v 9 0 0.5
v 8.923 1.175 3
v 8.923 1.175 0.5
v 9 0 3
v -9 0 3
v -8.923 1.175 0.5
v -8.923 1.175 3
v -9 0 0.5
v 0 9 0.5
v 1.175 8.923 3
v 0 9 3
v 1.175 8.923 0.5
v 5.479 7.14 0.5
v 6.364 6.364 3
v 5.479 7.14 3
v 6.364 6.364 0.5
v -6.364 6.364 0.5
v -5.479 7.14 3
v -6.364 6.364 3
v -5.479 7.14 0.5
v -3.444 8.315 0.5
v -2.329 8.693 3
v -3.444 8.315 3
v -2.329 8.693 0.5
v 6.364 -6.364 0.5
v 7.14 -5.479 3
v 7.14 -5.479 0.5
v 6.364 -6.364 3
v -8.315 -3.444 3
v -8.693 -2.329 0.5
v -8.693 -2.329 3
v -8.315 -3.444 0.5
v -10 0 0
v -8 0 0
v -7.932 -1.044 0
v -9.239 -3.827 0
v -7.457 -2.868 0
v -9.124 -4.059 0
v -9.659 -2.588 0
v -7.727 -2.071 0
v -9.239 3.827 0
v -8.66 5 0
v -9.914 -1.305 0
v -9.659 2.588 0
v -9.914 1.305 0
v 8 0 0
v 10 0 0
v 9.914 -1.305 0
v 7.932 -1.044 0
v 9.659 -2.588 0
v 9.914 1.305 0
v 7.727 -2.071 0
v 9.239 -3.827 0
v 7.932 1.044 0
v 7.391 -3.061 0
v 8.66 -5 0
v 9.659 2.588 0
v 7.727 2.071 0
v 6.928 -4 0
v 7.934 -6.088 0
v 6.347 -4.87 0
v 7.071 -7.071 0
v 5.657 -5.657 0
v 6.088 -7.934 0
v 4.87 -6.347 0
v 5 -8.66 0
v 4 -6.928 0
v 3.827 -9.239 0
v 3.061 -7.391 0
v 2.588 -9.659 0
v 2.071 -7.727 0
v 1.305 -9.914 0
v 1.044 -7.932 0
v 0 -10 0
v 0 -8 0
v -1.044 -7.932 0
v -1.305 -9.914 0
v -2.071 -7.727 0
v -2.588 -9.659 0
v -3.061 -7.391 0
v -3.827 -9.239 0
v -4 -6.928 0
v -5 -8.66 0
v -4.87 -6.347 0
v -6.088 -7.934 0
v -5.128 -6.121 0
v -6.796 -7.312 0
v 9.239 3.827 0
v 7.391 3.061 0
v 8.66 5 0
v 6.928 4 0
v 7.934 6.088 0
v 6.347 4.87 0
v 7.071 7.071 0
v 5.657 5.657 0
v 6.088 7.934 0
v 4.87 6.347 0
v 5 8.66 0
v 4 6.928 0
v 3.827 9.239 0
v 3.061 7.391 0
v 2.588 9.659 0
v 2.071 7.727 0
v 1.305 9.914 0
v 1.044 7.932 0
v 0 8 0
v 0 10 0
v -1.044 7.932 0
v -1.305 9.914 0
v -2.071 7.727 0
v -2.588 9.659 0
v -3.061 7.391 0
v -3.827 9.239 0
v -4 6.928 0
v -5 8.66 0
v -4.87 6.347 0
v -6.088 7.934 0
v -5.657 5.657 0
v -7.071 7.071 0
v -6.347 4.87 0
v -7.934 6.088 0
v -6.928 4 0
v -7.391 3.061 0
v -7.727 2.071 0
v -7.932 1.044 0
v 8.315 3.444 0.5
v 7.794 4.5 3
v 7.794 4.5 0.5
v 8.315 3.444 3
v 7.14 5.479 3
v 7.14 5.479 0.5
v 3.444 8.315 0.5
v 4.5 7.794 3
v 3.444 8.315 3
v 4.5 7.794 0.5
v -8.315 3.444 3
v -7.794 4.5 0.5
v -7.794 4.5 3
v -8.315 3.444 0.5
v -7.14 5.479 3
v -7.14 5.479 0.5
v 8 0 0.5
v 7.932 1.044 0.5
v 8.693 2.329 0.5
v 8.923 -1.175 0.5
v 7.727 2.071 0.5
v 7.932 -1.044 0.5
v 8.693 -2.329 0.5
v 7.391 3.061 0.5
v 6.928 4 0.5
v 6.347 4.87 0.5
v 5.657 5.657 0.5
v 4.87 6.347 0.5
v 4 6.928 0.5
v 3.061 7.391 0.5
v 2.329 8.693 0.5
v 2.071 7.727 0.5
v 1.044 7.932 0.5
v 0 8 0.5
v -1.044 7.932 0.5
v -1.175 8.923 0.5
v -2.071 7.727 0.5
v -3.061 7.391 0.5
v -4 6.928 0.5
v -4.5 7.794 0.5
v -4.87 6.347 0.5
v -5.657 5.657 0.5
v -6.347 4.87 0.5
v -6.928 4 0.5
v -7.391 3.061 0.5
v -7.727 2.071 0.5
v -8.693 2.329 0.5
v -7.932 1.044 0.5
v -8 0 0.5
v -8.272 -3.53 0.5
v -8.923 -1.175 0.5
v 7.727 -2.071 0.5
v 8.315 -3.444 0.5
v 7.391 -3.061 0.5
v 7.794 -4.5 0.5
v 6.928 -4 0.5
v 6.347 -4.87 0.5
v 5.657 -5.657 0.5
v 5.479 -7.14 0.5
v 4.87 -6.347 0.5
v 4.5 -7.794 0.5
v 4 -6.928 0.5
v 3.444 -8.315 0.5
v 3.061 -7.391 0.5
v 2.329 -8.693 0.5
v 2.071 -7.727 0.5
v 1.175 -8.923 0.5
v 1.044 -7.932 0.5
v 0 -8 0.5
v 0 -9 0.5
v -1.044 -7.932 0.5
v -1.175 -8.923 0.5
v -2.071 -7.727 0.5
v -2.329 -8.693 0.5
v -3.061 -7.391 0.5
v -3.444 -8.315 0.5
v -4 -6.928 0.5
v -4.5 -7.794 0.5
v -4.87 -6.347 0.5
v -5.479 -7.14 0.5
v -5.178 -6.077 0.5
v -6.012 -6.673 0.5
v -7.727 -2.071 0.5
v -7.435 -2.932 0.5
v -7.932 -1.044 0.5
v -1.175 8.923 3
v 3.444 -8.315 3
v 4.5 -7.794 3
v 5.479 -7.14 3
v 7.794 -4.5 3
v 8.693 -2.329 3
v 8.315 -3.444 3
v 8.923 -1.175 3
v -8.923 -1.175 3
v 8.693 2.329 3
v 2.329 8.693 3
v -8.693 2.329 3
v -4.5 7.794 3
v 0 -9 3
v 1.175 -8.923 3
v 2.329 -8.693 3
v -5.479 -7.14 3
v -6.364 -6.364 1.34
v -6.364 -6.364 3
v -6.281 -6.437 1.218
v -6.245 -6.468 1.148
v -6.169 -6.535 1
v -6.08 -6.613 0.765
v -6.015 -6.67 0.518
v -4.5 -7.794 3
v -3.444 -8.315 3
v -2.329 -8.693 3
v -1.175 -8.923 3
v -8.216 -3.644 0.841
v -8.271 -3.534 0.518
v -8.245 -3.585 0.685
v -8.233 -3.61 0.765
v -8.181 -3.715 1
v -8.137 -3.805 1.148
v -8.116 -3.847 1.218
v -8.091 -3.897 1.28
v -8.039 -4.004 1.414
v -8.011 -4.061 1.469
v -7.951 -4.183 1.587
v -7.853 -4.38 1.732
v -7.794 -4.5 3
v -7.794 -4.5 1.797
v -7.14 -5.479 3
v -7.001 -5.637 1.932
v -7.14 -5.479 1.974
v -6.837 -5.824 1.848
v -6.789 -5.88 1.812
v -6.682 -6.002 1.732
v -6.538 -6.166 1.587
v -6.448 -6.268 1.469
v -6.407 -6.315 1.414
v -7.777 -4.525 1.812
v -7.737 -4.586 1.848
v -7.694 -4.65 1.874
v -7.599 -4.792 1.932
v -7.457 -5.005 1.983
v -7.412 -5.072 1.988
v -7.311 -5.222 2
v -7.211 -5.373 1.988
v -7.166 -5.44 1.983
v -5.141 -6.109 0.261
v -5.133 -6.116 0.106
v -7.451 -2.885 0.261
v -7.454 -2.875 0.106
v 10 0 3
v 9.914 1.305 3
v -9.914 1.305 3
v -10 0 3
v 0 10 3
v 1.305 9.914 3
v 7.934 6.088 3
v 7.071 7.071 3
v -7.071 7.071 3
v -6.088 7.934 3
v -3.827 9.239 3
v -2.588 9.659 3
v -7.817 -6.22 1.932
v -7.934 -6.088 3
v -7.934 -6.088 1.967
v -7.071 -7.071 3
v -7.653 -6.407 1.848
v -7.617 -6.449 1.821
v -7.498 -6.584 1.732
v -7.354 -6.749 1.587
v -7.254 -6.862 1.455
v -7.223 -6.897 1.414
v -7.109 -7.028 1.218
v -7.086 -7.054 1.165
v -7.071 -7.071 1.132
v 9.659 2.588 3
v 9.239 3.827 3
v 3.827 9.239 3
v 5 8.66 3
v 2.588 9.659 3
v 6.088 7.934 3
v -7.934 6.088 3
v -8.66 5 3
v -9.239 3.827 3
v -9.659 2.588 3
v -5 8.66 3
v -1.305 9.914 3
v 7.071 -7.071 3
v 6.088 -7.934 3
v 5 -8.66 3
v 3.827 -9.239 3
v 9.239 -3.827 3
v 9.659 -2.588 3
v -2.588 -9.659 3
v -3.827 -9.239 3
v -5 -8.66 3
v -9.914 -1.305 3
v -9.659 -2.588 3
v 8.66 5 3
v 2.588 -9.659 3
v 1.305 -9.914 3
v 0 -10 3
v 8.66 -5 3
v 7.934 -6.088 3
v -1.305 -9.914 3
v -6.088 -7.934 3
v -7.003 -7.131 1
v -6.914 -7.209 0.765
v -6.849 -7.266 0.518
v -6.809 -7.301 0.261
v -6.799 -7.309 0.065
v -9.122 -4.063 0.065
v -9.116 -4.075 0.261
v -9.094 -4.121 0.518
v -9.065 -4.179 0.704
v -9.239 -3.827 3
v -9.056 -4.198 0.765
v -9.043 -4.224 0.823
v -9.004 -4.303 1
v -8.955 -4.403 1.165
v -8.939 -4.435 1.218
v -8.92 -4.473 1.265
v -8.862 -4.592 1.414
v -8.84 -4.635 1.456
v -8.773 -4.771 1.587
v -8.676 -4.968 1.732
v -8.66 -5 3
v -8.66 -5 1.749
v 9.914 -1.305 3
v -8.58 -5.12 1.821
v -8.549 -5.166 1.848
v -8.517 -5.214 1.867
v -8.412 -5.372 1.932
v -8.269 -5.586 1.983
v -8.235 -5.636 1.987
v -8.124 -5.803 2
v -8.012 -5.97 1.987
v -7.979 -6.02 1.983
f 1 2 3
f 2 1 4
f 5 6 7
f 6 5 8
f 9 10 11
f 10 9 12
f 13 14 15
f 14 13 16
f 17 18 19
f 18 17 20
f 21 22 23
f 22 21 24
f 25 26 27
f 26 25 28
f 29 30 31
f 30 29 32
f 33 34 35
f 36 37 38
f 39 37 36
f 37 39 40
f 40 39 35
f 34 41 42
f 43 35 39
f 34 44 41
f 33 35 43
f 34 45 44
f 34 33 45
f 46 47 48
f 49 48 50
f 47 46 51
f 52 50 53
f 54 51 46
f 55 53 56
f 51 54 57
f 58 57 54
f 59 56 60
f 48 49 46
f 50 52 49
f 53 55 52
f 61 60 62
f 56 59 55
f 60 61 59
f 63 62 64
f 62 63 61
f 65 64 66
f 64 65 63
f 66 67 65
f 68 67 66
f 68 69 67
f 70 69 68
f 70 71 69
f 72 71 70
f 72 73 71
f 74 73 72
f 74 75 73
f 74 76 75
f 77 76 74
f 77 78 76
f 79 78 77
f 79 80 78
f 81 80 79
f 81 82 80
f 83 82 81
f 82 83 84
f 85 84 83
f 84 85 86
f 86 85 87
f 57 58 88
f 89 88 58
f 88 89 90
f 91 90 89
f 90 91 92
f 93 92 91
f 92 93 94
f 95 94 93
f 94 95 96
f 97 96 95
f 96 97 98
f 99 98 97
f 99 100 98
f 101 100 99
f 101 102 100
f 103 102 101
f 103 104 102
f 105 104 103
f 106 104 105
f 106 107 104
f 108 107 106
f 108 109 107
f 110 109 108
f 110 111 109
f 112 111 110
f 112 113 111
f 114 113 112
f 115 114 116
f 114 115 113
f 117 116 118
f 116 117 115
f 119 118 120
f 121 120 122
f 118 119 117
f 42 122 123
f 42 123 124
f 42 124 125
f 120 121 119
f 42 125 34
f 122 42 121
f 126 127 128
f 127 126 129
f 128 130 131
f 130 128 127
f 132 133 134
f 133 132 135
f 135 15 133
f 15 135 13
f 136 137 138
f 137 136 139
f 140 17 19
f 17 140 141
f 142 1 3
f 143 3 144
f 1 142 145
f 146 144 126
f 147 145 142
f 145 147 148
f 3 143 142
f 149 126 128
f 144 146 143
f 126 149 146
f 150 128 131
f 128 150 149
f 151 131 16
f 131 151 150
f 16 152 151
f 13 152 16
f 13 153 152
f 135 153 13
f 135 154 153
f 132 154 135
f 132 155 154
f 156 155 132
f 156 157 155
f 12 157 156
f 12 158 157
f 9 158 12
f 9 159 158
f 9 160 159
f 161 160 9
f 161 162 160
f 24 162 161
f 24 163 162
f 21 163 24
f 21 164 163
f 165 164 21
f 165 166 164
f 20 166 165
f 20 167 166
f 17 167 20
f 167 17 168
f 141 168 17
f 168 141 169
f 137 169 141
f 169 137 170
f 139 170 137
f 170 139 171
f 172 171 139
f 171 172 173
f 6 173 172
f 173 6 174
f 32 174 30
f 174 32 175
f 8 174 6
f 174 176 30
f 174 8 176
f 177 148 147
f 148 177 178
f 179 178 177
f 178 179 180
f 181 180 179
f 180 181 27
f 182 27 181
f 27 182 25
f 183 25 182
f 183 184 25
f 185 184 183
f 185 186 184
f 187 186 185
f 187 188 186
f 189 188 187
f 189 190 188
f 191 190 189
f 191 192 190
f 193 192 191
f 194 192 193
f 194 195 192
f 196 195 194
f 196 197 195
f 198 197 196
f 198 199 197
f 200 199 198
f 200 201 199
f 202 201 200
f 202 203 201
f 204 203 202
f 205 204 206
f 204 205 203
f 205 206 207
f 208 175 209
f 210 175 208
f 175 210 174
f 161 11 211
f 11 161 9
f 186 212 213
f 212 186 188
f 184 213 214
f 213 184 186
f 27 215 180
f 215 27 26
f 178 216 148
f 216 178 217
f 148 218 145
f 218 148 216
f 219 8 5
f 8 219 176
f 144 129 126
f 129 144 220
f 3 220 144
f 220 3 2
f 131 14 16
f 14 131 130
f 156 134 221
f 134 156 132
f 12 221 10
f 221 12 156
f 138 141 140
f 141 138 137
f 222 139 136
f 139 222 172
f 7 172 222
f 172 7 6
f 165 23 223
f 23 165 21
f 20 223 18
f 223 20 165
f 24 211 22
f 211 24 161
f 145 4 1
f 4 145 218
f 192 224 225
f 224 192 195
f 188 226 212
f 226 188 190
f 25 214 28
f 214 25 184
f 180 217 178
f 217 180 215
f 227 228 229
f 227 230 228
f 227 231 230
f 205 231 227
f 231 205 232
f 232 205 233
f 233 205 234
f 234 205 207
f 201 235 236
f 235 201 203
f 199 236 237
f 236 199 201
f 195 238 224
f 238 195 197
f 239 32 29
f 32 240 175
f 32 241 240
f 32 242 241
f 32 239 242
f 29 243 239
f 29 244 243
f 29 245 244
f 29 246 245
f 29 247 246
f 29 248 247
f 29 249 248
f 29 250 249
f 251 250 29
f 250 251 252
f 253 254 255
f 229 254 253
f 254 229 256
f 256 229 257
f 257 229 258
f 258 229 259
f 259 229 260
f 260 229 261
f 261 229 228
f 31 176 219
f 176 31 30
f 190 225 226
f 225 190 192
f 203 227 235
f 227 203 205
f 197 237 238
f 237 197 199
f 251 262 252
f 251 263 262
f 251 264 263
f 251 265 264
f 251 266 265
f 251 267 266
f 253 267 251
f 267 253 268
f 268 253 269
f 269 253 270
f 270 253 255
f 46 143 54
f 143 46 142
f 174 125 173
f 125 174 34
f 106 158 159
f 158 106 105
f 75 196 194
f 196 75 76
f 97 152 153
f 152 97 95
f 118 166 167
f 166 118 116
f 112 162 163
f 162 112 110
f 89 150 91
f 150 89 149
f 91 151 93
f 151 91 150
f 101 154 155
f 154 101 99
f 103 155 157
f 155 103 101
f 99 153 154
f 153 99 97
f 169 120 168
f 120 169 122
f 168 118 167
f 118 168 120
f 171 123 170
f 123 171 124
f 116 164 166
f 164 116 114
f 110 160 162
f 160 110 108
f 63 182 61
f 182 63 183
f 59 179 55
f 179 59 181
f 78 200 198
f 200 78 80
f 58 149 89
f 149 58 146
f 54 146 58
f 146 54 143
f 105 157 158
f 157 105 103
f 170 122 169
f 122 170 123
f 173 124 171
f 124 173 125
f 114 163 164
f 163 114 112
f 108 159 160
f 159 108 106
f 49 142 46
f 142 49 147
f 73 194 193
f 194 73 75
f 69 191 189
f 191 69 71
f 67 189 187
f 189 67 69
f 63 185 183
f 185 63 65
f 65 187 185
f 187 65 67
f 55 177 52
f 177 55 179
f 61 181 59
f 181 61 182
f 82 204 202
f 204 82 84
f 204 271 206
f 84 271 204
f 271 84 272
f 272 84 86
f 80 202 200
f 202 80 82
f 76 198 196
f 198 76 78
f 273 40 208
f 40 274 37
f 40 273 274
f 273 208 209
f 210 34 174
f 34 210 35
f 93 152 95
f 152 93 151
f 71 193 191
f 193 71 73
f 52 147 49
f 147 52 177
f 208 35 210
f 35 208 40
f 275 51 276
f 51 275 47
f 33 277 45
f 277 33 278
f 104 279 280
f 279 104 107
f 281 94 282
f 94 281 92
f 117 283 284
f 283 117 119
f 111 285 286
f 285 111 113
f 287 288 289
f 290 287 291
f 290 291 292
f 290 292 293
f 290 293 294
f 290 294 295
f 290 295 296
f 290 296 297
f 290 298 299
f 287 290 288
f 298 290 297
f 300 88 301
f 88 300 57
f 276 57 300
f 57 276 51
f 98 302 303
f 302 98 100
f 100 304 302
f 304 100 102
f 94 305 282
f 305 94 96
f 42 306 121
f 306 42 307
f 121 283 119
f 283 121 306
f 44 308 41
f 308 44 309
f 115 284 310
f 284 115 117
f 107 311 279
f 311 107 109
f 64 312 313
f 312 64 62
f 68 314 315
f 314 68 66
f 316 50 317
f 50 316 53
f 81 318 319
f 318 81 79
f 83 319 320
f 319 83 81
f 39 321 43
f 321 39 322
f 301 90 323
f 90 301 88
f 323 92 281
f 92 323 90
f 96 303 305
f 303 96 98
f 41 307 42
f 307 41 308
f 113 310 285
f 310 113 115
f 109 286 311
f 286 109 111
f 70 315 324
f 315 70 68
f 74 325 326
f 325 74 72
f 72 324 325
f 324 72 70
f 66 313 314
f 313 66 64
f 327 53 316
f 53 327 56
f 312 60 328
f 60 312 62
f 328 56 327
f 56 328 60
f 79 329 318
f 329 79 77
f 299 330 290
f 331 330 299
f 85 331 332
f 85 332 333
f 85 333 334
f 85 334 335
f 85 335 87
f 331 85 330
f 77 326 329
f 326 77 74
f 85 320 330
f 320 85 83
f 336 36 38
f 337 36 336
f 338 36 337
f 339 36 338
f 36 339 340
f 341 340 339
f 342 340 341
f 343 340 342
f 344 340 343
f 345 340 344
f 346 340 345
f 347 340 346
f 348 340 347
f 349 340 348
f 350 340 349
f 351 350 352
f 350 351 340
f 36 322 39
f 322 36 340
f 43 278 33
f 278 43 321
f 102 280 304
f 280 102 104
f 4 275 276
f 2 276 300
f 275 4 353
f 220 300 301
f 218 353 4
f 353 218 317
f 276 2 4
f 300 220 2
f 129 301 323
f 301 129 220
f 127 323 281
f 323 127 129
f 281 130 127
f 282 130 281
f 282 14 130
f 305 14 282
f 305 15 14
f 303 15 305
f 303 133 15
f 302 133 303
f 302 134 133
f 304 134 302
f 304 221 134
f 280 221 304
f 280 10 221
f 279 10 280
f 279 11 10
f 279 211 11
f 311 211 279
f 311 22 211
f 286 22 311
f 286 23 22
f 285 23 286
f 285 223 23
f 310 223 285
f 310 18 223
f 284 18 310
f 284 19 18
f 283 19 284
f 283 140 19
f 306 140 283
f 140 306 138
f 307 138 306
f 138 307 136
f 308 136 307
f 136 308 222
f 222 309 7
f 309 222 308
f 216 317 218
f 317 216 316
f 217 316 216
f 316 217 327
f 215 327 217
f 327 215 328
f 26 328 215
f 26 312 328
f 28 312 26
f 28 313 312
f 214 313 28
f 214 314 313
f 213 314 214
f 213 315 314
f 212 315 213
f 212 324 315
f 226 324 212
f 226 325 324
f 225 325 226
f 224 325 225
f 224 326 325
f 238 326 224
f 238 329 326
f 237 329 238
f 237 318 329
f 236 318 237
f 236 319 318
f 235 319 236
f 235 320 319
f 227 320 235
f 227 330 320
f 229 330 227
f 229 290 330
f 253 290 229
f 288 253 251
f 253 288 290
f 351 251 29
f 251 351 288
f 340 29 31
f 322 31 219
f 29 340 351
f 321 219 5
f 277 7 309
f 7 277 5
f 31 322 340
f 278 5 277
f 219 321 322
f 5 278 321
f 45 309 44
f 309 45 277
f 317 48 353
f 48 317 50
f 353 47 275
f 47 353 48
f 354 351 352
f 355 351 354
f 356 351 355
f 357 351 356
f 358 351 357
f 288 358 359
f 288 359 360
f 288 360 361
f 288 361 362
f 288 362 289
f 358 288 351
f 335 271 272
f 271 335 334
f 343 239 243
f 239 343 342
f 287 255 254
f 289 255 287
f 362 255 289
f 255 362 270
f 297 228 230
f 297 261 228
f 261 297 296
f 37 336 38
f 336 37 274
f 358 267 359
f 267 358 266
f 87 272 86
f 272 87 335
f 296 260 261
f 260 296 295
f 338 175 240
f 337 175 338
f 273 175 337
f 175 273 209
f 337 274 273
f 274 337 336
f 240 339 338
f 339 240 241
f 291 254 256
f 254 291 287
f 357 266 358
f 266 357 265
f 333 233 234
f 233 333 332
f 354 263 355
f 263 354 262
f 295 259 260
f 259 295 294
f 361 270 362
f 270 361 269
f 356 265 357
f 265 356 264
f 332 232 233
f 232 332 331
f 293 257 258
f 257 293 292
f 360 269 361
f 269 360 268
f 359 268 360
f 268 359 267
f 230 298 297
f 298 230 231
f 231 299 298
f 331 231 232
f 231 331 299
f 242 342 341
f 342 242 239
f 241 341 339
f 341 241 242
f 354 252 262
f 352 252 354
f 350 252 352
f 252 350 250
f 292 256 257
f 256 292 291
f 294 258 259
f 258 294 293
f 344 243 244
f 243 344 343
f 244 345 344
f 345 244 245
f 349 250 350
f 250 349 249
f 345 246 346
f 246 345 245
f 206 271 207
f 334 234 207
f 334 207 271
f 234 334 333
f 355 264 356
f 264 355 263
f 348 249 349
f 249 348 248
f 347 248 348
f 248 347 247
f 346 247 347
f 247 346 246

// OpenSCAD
// file: ../build_environments.scad
// build_environments.scad: modules to build level sections
//

module pool(diameter=10.0, wall_height=2.0, step_width=3.0, connections=[])
{
    difference() {
        union() {
        difference() {
            cylinder(h=0.5,r1=diameter+step_width,r2=diameter+step_width,$fn=48);
            translate([0,0,-0.1])
                cylinder(h=0.7,r1=diameter,r2=diameter,$fn=48);
        }
        difference() {
            cylinder(h=wall_height,r1=diameter+step_width+1.0,r2=diameter+step_width+1.0,$fn=48);
            translate([0,0,-0.1])
                cylinder(h=wall_height+0.2,r1=diameter+step_width,r2=diameter+step_width,$fn=48);
        }
        }
    
        for (c = connections)
        {
            rotate([0,90,0]) {
                angle = atan2(c[1],c[0]);
                rotate([-angle,0,0]) {
                    cylinder(h=diameter+5.0,r1=c[2],r2=c[2],$fn=48);
                }
            }
        }
    }
}

module straight(length=10.0, width=2.0, dy1=0.0, dy2=0.0, dz=0.0)
{
    dims = [0, 0, 0, 0, 0, (dz/length)];
    matrix = [
        [ 1, dims[0], dims[1], 0 ],
        [ dims[2], 1, dims[4], 0 ],
        [ dims[5], dims[3], 1, 0 ],
        [ 0, 0, 0, 1 ]
    ];
    multmatrix(matrix)
    difference() {
        translate([dy1,0,0])
        union() {
            rotate([0,90,0]) {
                difference() {
                    cylinder(h=(length-dy1-dy2),r1=width+1.0,r2=width+1.0,$fn=24);
                    translate([0,0,-0.1])
                        cylinder(h=(length-dy1-dy2+0.2),r1=width,r2=width,$fn=24);
                }
                difference() {
                    cylinder(h=1.0,r1=width+2.0,r2=width+2.0,$fn=24);
                    translate([0,0,-0.1])
                        cylinder(h=1.2,r1=width,r2=width,$fn=24);
                }
                translate([0,0,(length-dy1-dy2)-1.0]) {
                    difference() {
                        cylinder(h=1.0,r1=width+2.0,r2=width+2.0,$fn=24);
                        translate([0,0,-0.1])
                            cylinder(h=1.2,r1=width,r2=width,$fn=24);
                    }
                }
            }
        }
        translate([0,0,-(2*width+4.0)/2])
            cube([3*length,3*length,2*width+4.0],center=true);
    }
}

module curve(p0=[0,0], center=[0,0], dir=1, angle=0.0, width=2.0)
{
    radius = sqrt((p0[0]-center[0])*(p0[0]-center[0]) + (p0[1]-center[1])*(p0[1]-center[1]));
    if (dir == 0) {
        difference() {
            rotate([0,0,-90])
            difference() {
                rotate_extrude(angle = angle, convexity = 10, $fn=32)
                    translate([radius, 0, 0])
                        circle(r = width+1.0,$fn=24);
                rotate([0,0,-1.0])
                    rotate_extrude(angle = angle+2.0, convexity = 10, $fn=32)
                        translate([radius, 0, 0])
                            circle(r = width,$fn=24);
            }
            translate([0,0,-(2*width+4.0)/2])
                cube([5*radius,5*radius,2*width+4.0],center=true);
        }
    }
    else {
        difference() {
            rotate([0,0,90])
            difference() {
                rotate_extrude(angle = -angle, convexity = 10, $fn=32)
                    translate([radius, 0, 0])
                        circle(r = width+1.0,$fn=24);
                rotate([0,0,1.0])
                    rotate_extrude(angle = -angle-2.0, convexity = 10, $fn=32)
                        translate([radius, 0, 0])
                            circle(r = width,$fn=24);
            }
            translate([0,0,-(2*width+4.0)/2])
                cube([5*radius,5*radius,2*width+4.0],center=true);
        }
    }

}

// test pool
//pool(diameter=12.0000, wall_height=3.0000, step_width=3.0000, connections=[[0.0000,-26.0000,2.0000], [23.6074,0.0000,2.0000]]);

// test straight, slope
//straight(length=26.0000, width=2.0000, dy1=11.8322, dy2=6.7082, dz=0.0000);
//straight(length=29.1549, width=12.0000, dy1=0.0000, dy2=0.0000, dz=-15.0000);

// test curve
//curve(p0=[23.6074, 0.0000], center=[23.6074, 5.0000], dir=0, angle=60.1011, width=2.0000);
//curve(p0=[33.6426, 12.4219], center=[37.9771, 9.9295], dir=1, angle=120.4627, width=2.0000);
// main file
use <../build_environments.scad>;
pool(diameter=8.0000, wall_height=3.0000, step_width=1.0000, connections=[[-14.0000,-10.0000,2.0000]]);
